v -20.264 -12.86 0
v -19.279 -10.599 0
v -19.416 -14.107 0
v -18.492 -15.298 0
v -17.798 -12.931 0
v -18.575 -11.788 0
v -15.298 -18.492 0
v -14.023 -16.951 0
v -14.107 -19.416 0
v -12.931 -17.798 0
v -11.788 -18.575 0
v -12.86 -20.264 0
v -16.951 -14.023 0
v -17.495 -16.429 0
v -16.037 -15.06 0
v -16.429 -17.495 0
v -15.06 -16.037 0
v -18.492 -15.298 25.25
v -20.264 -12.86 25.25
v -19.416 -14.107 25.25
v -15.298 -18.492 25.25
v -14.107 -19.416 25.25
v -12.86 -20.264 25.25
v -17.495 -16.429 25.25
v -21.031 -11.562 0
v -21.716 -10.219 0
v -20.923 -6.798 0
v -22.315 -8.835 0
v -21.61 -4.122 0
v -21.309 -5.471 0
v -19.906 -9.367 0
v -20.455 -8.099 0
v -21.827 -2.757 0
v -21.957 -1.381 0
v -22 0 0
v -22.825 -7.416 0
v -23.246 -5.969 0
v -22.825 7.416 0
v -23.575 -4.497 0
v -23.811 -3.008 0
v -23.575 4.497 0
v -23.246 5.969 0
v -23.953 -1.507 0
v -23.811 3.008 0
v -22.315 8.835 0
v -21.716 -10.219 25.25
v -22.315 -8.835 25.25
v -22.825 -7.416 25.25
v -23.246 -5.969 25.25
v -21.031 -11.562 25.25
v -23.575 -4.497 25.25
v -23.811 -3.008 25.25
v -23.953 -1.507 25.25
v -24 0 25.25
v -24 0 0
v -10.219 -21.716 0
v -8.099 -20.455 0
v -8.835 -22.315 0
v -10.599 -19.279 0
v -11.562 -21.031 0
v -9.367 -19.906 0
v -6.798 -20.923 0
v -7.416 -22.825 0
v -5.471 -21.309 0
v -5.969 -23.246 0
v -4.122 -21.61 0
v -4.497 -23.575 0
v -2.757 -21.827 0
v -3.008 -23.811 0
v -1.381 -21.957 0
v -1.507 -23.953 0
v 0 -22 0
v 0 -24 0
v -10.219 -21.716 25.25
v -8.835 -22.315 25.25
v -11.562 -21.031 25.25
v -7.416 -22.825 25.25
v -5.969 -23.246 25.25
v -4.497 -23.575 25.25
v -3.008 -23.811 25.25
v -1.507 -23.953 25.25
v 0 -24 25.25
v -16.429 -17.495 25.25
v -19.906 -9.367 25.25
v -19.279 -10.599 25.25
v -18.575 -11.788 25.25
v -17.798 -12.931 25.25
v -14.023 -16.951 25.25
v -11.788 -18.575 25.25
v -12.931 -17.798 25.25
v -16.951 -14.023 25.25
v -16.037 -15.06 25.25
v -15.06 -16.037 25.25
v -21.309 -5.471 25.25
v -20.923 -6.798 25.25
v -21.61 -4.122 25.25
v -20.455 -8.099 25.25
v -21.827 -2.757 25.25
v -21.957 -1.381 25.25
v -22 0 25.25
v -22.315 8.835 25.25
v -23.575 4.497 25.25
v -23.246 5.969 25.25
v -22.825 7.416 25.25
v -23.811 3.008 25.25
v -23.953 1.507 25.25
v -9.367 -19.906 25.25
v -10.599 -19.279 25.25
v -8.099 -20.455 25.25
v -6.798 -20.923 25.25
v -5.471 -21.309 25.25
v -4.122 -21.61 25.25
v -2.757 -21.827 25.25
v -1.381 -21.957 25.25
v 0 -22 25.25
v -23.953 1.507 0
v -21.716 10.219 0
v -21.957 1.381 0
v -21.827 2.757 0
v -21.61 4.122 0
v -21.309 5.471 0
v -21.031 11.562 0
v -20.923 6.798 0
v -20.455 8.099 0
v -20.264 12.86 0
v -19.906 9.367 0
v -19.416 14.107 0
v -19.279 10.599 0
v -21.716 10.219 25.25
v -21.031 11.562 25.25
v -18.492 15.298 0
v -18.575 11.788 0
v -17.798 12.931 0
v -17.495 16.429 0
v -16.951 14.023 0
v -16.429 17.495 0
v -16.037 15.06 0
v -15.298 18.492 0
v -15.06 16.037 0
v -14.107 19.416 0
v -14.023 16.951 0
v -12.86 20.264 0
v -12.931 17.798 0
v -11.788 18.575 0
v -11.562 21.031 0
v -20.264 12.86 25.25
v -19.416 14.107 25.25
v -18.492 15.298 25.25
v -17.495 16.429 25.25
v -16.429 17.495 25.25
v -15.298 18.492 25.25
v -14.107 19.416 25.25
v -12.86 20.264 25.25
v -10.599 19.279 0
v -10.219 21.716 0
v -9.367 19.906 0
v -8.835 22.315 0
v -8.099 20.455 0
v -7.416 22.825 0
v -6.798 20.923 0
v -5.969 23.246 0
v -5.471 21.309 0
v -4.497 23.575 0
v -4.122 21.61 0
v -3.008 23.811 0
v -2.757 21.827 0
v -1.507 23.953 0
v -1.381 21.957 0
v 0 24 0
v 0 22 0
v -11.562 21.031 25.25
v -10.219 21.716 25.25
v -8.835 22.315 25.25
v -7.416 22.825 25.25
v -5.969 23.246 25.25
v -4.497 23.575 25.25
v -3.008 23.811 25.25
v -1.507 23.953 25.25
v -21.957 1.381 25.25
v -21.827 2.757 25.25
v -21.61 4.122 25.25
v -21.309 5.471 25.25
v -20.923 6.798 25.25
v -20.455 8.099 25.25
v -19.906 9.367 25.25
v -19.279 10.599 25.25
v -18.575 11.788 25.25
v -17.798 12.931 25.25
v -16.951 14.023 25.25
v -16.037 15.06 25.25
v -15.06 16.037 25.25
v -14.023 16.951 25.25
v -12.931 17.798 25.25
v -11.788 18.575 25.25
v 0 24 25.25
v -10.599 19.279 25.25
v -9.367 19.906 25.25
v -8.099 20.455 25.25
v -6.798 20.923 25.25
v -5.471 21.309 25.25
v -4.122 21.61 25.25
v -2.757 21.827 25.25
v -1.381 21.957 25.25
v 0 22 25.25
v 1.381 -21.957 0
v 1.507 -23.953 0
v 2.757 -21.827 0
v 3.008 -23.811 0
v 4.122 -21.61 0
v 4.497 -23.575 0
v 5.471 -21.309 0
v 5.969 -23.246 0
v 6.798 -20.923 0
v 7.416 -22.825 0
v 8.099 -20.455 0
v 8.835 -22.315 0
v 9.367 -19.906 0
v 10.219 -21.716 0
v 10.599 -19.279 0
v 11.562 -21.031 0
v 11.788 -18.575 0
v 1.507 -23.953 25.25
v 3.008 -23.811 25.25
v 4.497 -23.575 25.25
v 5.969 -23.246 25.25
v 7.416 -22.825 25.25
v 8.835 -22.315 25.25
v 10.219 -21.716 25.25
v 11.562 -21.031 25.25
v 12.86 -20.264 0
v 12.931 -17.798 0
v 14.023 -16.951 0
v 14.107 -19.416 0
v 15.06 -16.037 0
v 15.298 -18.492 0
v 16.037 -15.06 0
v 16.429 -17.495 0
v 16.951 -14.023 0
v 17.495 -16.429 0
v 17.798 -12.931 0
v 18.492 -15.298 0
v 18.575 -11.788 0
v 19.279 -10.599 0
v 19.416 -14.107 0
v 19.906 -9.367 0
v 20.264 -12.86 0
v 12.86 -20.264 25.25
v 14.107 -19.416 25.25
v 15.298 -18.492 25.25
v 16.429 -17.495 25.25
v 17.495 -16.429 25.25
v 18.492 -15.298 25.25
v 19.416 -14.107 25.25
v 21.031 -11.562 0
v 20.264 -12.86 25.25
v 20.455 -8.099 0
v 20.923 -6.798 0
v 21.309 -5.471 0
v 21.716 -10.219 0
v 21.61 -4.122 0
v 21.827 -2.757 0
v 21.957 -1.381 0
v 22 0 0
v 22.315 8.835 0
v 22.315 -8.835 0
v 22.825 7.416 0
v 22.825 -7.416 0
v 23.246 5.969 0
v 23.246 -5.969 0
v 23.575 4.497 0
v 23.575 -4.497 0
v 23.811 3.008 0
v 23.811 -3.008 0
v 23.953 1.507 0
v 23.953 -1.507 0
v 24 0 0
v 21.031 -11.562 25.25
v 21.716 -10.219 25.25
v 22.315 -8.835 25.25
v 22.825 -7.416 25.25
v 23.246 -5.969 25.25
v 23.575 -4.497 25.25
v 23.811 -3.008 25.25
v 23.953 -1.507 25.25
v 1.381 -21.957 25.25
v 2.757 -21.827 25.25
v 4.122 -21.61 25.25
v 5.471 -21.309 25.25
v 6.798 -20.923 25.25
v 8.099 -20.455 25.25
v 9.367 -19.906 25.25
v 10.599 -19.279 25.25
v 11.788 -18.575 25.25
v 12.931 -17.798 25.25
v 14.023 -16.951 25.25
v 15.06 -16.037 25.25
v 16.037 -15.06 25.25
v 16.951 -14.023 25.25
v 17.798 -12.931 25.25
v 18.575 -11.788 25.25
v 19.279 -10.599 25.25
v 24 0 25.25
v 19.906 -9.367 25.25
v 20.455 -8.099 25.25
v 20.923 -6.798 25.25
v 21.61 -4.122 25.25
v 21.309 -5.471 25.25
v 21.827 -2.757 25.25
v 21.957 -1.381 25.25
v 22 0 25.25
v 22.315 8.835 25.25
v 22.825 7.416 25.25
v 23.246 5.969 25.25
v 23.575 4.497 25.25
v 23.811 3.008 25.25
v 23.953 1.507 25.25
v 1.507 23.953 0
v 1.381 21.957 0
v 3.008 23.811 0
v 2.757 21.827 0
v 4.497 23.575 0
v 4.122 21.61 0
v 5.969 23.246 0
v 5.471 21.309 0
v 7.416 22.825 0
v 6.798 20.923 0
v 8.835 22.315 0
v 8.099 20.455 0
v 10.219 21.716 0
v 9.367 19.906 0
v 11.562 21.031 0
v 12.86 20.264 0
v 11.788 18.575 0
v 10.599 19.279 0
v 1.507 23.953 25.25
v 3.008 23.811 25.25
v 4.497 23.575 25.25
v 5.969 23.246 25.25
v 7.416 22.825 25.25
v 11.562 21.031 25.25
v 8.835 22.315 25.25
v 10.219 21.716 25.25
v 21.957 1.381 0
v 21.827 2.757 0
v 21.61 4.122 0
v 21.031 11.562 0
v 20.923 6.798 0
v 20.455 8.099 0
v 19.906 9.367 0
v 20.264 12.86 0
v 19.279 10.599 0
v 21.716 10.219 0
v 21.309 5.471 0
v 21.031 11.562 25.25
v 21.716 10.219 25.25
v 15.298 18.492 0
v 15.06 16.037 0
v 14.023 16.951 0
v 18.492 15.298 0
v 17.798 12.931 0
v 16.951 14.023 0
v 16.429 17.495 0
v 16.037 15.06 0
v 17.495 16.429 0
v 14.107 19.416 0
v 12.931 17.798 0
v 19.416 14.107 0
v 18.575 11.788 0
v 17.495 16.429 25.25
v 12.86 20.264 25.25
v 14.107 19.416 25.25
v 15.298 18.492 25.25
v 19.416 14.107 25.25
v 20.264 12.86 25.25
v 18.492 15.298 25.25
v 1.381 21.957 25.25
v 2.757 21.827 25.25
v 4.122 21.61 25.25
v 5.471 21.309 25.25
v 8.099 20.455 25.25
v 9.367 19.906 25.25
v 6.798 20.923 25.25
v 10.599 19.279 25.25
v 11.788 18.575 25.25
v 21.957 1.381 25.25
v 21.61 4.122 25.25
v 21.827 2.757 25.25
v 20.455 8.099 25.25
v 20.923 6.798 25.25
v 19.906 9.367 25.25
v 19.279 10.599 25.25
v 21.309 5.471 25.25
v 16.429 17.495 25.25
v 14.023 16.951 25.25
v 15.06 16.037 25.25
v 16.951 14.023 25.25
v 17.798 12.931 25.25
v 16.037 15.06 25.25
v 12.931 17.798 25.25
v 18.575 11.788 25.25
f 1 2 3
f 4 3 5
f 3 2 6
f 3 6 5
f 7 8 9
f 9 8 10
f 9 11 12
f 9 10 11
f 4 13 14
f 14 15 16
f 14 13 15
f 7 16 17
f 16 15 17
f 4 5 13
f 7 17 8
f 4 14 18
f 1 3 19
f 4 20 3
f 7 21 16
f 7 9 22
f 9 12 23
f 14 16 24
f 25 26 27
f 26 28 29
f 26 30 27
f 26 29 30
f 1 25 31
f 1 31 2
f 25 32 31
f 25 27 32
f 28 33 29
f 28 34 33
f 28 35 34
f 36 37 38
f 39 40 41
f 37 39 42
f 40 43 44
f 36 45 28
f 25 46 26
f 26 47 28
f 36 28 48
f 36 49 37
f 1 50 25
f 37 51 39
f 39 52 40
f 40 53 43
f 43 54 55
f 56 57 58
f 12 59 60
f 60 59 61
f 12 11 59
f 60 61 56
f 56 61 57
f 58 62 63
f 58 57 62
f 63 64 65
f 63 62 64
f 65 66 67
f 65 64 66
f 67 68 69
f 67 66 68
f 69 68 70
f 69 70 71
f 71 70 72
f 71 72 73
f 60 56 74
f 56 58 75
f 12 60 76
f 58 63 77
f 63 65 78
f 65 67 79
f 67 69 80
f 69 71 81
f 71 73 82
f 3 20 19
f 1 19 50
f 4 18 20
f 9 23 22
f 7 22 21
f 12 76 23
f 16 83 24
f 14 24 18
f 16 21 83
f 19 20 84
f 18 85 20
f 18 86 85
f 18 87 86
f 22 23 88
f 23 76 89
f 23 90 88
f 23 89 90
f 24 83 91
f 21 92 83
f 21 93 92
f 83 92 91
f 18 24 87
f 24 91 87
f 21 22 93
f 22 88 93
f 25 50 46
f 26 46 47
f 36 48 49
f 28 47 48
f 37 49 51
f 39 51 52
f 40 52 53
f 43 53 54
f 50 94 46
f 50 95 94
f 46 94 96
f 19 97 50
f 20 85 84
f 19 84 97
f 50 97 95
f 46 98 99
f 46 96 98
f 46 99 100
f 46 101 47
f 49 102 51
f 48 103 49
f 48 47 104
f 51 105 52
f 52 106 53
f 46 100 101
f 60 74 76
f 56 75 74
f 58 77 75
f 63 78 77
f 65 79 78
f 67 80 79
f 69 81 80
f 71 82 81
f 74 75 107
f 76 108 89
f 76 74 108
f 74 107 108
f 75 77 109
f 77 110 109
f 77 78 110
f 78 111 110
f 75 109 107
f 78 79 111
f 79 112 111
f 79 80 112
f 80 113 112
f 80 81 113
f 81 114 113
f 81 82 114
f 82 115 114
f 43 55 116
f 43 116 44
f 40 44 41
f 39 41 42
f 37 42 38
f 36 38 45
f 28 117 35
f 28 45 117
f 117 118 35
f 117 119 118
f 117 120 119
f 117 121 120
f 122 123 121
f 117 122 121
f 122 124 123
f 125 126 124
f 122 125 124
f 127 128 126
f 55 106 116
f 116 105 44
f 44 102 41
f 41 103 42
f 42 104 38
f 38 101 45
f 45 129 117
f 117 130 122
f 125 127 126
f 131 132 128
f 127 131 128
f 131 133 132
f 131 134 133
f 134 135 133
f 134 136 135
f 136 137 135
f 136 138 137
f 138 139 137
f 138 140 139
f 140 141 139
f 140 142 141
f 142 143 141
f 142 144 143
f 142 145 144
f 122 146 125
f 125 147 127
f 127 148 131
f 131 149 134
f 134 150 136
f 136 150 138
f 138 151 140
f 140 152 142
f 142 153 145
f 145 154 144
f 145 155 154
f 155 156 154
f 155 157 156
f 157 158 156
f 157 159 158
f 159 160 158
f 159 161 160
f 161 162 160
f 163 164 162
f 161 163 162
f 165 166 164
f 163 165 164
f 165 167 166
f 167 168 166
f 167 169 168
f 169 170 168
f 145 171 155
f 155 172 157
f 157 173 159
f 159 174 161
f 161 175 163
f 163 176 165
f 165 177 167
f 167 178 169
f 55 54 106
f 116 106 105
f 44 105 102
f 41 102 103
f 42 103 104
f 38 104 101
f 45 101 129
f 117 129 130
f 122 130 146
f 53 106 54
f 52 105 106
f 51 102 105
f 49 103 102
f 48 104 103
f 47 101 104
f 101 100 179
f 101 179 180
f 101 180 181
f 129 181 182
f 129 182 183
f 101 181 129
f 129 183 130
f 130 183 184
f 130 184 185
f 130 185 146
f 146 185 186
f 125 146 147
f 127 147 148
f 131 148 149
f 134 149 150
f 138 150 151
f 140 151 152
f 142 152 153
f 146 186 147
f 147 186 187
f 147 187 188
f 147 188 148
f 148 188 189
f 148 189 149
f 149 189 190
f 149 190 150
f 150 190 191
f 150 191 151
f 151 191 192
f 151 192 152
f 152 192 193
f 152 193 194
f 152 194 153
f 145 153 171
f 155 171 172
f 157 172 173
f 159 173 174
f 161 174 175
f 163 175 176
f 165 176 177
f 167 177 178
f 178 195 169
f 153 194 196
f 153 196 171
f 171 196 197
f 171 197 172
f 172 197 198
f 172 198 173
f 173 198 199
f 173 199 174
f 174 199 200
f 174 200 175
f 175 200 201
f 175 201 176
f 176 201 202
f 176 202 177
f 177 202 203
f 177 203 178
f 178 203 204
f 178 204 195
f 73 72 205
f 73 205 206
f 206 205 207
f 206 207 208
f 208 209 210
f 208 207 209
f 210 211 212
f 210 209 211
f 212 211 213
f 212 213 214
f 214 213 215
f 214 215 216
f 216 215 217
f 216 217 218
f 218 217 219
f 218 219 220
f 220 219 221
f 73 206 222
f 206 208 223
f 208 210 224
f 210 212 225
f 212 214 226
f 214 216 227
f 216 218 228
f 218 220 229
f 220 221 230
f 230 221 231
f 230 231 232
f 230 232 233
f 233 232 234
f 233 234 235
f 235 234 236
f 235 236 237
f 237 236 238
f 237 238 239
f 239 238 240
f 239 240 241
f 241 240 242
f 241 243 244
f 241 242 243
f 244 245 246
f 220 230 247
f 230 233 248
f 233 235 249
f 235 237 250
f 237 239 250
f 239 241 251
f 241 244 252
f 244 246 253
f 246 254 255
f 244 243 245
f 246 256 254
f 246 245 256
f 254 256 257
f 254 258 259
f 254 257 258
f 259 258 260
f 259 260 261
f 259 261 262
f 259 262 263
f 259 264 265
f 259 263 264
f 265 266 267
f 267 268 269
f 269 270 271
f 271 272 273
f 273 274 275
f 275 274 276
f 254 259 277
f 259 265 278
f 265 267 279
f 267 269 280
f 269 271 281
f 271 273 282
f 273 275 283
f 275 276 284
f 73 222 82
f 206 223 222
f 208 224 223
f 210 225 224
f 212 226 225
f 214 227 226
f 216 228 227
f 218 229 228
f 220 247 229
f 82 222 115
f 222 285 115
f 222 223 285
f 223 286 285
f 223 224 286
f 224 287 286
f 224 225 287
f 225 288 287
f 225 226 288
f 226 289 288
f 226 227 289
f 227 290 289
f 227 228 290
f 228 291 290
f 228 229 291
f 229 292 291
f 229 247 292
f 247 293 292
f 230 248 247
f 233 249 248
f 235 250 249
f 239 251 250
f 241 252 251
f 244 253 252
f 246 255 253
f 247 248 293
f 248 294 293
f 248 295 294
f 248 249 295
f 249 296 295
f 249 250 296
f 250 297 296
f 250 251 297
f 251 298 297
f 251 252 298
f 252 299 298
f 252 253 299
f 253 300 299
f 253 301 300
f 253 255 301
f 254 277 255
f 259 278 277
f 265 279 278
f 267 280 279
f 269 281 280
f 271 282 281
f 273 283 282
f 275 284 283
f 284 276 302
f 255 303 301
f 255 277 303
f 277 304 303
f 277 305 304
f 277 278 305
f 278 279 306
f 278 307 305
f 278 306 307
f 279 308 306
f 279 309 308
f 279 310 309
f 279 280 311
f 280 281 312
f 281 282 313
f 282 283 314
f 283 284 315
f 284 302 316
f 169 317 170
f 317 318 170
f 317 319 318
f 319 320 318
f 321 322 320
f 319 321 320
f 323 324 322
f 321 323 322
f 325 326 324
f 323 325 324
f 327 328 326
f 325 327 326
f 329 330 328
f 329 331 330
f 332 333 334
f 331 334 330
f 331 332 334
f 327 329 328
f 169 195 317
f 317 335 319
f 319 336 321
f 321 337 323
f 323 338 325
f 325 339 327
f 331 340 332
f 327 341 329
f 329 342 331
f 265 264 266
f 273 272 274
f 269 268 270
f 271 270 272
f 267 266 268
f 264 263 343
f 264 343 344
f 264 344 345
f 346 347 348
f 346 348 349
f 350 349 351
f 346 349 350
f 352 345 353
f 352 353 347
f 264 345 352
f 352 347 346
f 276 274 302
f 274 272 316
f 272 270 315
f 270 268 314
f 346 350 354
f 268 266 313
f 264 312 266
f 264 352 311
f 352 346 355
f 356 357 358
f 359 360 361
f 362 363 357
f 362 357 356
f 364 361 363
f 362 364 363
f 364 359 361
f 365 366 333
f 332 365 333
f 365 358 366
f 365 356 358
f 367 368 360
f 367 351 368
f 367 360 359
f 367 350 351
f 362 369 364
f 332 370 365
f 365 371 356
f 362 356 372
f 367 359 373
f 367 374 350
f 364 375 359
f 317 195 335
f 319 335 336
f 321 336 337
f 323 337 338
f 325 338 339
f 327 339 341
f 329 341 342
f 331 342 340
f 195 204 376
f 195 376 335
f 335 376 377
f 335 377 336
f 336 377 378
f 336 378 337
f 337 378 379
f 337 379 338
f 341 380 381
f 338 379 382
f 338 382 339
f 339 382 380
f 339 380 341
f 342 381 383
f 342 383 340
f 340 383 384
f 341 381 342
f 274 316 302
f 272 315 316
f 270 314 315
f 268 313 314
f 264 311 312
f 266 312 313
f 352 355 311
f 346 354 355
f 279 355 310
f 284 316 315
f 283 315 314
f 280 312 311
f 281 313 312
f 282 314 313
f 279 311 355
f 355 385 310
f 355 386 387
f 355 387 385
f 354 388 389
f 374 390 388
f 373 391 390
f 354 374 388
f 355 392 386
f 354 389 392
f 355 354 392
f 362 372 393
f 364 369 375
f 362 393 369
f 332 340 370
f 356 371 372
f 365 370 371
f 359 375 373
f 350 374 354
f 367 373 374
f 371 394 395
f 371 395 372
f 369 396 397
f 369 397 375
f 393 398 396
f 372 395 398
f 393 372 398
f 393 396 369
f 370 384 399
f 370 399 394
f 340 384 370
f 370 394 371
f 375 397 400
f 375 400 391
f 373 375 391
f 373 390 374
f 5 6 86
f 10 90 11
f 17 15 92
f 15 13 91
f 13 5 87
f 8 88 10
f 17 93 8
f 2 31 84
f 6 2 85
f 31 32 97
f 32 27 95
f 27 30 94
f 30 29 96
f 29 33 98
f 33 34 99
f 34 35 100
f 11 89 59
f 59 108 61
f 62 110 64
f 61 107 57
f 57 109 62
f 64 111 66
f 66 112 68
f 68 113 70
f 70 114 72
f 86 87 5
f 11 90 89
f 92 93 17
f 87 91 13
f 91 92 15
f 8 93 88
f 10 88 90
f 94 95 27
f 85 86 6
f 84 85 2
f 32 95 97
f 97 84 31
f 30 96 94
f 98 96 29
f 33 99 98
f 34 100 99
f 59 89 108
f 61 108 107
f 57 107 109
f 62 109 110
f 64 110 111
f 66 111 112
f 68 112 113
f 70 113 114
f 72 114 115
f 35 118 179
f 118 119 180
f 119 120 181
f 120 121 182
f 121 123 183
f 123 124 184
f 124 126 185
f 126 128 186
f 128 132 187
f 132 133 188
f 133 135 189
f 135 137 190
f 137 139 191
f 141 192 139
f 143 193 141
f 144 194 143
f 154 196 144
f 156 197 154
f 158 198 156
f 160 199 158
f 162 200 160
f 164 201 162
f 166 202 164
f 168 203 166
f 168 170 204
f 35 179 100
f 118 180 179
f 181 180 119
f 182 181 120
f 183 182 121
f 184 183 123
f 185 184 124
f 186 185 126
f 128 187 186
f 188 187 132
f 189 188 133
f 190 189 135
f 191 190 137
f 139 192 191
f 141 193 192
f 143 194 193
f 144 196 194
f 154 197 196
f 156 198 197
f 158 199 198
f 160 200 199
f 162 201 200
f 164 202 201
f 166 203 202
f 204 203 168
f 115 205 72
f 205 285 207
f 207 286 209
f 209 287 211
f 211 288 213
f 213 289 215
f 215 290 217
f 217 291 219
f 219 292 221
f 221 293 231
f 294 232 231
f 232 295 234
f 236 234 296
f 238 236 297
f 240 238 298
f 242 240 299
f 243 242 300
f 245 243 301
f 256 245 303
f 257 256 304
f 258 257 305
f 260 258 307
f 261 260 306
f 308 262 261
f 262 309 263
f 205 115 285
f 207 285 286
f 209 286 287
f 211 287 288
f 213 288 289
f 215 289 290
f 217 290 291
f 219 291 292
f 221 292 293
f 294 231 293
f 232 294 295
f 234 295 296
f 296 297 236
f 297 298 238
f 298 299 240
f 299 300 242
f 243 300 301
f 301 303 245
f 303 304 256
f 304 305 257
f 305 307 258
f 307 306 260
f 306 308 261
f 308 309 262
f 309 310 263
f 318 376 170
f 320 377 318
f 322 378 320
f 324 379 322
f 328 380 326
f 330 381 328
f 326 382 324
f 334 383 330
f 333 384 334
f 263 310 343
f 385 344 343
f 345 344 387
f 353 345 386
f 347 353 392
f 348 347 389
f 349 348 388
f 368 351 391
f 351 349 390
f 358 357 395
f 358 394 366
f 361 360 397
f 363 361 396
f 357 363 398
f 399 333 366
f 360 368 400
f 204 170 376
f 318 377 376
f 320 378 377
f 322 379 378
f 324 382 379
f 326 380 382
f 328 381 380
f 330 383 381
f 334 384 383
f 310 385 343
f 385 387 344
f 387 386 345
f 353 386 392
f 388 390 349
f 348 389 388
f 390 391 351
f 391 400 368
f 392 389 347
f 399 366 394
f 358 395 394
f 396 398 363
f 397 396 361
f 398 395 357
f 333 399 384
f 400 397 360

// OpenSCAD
// file: bellows-v2.scad
// Parametric Purge Bellow for Zerno Z1 Grinder (v2: rounded folds for TPU 95A)
// Author: Denis Shatilov
// License: CC BY-NC 4.0
// https://creativecommons.org/licenses/by-nc/4.0/
// You may remix, adapt, and share this work non-commercially,
// but you must give appropriate credit.
//
// Same fit as bellows.scad (same diameter, cap hole and funnel insert), different folds:
//  * Folds are rounded instead of sharp. A sharp crease puts all of the bending on one
//    line of plastic, right on a layer line, which is where v1 tears.
//  * wall_thickness is measured straight through the wall. In v1 it was measured
//    sideways, so the 45 degree walls were really only 0.57 mm thick.
//  * More, shallower folds over the same height, so each fold bends less per press.

// Parameters
diameter = 58.5;           // Outer diameter (mm)
fold_sections = 7;         // Number of accordion folds (v1: 5)
accordion_height = 40;     // Height of the folded part (mm), same as v1
wall_thickness = 0.7;      // Wall thickness, measured straight through the wall (mm)
wave_depth = 5.6;          // Narrow ring diameter = diameter - wave_depth (v1: 8)
crease_radius = 1.75;      // Bend radius at the middle of the wall, wide and narrow rings (v1: 0)
sgmt = 120;                // Segments around the circle
insert_height = 10.5;      // Height used for inserts
solid_top = false;         // Controls whether to create hole for the funnel cap

// Derived parameters
folds = fold_sections * 2;
height_per_fold = accordion_height / folds;
total_height_accordion = accordion_height;
insert_height_cap = insert_height-2.5;
starting_hight = solid_top ? 0.8 : insert_height_cap;
fit_wall = 0.8;            // v1 wall, kept for the cap hole and funnel insert so they fit the same
cap_insert_cutout_diameter = diameter-4.375*fit_wall; // Cutout for cap insert
insert_lip_diameter = diameter-3.5*fit_wall; // Width of the insert
insert_lip_cutout_diameter = diameter-7.5*fit_wall; // Cutout from the insert

// Dimensions other designs can read with use <bellows-v2.scad> (e.g. bellows-v3.scad)
function v2_lip_start_z() = starting_hight + total_height_accordion + 1; // where the funnel insert's straight bore starts
function v2_lip_inner_r() = insert_lip_cutout_diameter / 2;              // radius of that bore
function v2_cap_underside_z() = starting_hight;                         // underside of the cap / funnel cap
function v2_fold_inner_r() = (diameter - wave_depth) / 2 - wall_thickness; // tightest radius inside the folds

// Walls steeper than 45 degrees from vertical would overhang too much to print.
assert(wave_depth / 2 <= height_per_fold, "wave_depth too large for this fold height: walls would pass 45 degrees");
assert(crease_radius > wall_thickness / 2, "crease_radius must be larger than half the wall");

// 2D half cross-section of the accordion: x = radius, y = height.
// Built as the solid area inside the outer surface, rounded, then hollowed out by
// offsetting inwards, so the wall has the same thickness everywhere, bends included.
module accordion_profile() {
    r_out = diameter / 2;
    r_in = r_out - wave_depth / 2;
    ext = 5; // straight run past each end so the end bends round off too
    zigzag = [for (i = [0 : folds]) [(i % 2 == 0) ? r_out : r_in, i * height_per_fold]];
    outline = concat(
        [[-ext, -ext], [r_out, -ext]],
        zigzag,
        [[r_out, total_height_accordion + ext], [-ext, total_height_accordion + ext]]
    );
    // Outside surface radii: wide rings bend around the outside, narrow rings around the inside
    r_wide = crease_radius + wall_thickness / 2;
    r_narrow = crease_radius - wall_thickness / 2;

    intersection() {
        square([r_out + 1, total_height_accordion]);
        difference() {
            rounded(r_wide, r_narrow) polygon(outline);
            offset(r = -wall_thickness) rounded(r_wide, r_narrow) polygon(outline);
        }
    }
}

// Round convex corners with r_convex and concave corners with r_concave
module rounded(r_convex, r_concave) {
    offset(r = -r_concave) offset(r = r_concave)
        offset(r = r_convex) offset(r = -r_convex)
            children();
}

module accordion() {
    rotate_extrude($fn = sgmt)
        accordion_profile($fn = 0, $fs = 0.25, $fa = 6);
}

// Module for the insert lip into the funnel (unchanged from v1)
module insert_lip() {
    union() {
        // Connector to the accordion
        difference() {
            cylinder(h = 1, d = diameter, $fn=100);
            translate([0, 0, -0.01])
                cylinder(
                    h = 1+0.02,
                    // Smooth transition into the accordion to avoid overhang
                    d1 = insert_lip_cutout_diameter+4,
                    d2 = insert_lip_cutout_diameter,
                    $fn=100
                );
        }
        // Main body of the insert
        translate([0, 0, 1])
        difference() {
            cylinder(h = insert_height, d = insert_lip_diameter, $fn=100);
            translate([0, 0, -0.01])
                cylinder(h = insert_height + 0.02, d = insert_lip_cutout_diameter, $fn=100);
        }
    }
}

// Hole to insert the funnel cap (unchanged from v1)
module cap_insert() {
    difference() {
        cylinder(h = insert_height_cap, d = diameter, $fn=100);
        translate([0,0,-0.01])
            cylinder(h = insert_height_cap + 0.02, d = cap_insert_cutout_diameter, $fn=100);
    }
}

module top_cap() {
    cylinder(h = 0.8, d = diameter, $fn=sgmt);
}

// Parts are printed in reverse to handle overhang
module purge_bellow() {
    translate([0,0,starting_hight + total_height_accordion])
        insert_lip();
    translate([0,0,starting_hight])
        accordion();
    if (solid_top) {
        top_cap();
    } else {
        cap_insert();
    }
}

// Render the bellow
purge_bellow();
// file: bellows-v3.scad
// Parametric Purge Bellow for Zerno Z1 Grinder (v3: v2 plus a hard stop)
// Author: Denis Shatilov
// License: CC BY-NC 4.0
// https://creativecommons.org/licenses/by-nc/4.0/
// You may remix, adapt, and share this work non-commercially,
// but you must give appropriate credit.
//
// The bellows is v2 (bellows-v2.scad) with a seat added inside the funnel insert.
// A separate rigid tube (bellows-v3-stop.scad, print in PLA or PETG) drops into the
// bellows and rests on that seat. Pressing the bellows down, the cap hits the tube
// after `stroke` mm, so:
//  * the folds never get crushed flat (the biggest strain on them), and
//  * a hard press ends in a rigid knock: cap -> tube -> funnel insert -> grinder,
//    which is the shock that frees stuck coffee, instead of the folds absorbing it.
//
// Fold, wall and fit settings live in bellows-v2.scad.

use <bellows-v2.scad>

// Parameters
stroke = 18;               // How far the cap travels before it hits the tube (mm). v2 crushes flat at roughly 26-28.
tube_od = 48;              // Stop tube outer diameter; keeps ~1.75 mm clear of the folds
tube_wall = 2;             // Stop tube wall (mm)
seat_inner_d = 45;         // Smallest opening left by the seat (mm)
seat_top = 1.2;            // Flat thickness above the 45 degree underside of the seat (mm)

// Derived
lip_r = v2_lip_inner_r();
seat_z = v2_lip_start_z();                       // seat starts where the insert bore starts
seat_contact_z = seat_z + (lip_r - tube_od / 2); // where the tube's outer edge touches the 45 degree seat
tube_length = seat_contact_z - v2_cap_underside_z() - stroke;

assert(tube_od / 2 < v2_fold_inner_r() - 1, "stop tube would rub the folds");
assert(seat_inner_d < tube_od - 2, "seat opening must be smaller than the tube or the tube falls through");
assert(tube_length > 5, "stroke too long for this bellows");

// Ring inside the funnel insert. Its underside is a 45 degree cone (prints without
// supports, and centers the tube); the tube rests on it.
module stop_seat() {
    r_in = seat_inner_d / 2;
    depth = lip_r - r_in;
    rotate_extrude($fn = 100)
        polygon([
            [lip_r + 0.5, seat_z],
            [lip_r + 0.5, seat_z + depth + seat_top],
            [r_in, seat_z + depth + seat_top],
            [r_in, seat_z + depth],
            [lip_r, seat_z]
        ]);
}

// Rigid stop tube (printed separately, see bellows-v3-stop.scad)
module stop_tube() {
    difference() {
        cylinder(h = tube_length, d = tube_od, $fn = 100);
        translate([0, 0, -0.01]) cylinder(h = tube_length + 0.02, d = tube_od - 2 * tube_wall, $fn = 100);
    }
}

module bellows_v3() {
    purge_bellow();
    stop_seat();
}

echo(str("v3 stop tube length: ", tube_length, " mm, stroke: ", stroke, " mm"));

bellows_v3();
// main file
// Stop tube for bellows-v3. Print in PLA or PETG (rigid), not TPU.
// Drops into the bellows from the cap end and rests on the seat in the funnel insert.
// Length follows `stroke` in bellows-v3.scad.
// Author: Denis Shatilov
// License: CC BY-NC 4.0

use <bellows-v3.scad>

stop_tube();
